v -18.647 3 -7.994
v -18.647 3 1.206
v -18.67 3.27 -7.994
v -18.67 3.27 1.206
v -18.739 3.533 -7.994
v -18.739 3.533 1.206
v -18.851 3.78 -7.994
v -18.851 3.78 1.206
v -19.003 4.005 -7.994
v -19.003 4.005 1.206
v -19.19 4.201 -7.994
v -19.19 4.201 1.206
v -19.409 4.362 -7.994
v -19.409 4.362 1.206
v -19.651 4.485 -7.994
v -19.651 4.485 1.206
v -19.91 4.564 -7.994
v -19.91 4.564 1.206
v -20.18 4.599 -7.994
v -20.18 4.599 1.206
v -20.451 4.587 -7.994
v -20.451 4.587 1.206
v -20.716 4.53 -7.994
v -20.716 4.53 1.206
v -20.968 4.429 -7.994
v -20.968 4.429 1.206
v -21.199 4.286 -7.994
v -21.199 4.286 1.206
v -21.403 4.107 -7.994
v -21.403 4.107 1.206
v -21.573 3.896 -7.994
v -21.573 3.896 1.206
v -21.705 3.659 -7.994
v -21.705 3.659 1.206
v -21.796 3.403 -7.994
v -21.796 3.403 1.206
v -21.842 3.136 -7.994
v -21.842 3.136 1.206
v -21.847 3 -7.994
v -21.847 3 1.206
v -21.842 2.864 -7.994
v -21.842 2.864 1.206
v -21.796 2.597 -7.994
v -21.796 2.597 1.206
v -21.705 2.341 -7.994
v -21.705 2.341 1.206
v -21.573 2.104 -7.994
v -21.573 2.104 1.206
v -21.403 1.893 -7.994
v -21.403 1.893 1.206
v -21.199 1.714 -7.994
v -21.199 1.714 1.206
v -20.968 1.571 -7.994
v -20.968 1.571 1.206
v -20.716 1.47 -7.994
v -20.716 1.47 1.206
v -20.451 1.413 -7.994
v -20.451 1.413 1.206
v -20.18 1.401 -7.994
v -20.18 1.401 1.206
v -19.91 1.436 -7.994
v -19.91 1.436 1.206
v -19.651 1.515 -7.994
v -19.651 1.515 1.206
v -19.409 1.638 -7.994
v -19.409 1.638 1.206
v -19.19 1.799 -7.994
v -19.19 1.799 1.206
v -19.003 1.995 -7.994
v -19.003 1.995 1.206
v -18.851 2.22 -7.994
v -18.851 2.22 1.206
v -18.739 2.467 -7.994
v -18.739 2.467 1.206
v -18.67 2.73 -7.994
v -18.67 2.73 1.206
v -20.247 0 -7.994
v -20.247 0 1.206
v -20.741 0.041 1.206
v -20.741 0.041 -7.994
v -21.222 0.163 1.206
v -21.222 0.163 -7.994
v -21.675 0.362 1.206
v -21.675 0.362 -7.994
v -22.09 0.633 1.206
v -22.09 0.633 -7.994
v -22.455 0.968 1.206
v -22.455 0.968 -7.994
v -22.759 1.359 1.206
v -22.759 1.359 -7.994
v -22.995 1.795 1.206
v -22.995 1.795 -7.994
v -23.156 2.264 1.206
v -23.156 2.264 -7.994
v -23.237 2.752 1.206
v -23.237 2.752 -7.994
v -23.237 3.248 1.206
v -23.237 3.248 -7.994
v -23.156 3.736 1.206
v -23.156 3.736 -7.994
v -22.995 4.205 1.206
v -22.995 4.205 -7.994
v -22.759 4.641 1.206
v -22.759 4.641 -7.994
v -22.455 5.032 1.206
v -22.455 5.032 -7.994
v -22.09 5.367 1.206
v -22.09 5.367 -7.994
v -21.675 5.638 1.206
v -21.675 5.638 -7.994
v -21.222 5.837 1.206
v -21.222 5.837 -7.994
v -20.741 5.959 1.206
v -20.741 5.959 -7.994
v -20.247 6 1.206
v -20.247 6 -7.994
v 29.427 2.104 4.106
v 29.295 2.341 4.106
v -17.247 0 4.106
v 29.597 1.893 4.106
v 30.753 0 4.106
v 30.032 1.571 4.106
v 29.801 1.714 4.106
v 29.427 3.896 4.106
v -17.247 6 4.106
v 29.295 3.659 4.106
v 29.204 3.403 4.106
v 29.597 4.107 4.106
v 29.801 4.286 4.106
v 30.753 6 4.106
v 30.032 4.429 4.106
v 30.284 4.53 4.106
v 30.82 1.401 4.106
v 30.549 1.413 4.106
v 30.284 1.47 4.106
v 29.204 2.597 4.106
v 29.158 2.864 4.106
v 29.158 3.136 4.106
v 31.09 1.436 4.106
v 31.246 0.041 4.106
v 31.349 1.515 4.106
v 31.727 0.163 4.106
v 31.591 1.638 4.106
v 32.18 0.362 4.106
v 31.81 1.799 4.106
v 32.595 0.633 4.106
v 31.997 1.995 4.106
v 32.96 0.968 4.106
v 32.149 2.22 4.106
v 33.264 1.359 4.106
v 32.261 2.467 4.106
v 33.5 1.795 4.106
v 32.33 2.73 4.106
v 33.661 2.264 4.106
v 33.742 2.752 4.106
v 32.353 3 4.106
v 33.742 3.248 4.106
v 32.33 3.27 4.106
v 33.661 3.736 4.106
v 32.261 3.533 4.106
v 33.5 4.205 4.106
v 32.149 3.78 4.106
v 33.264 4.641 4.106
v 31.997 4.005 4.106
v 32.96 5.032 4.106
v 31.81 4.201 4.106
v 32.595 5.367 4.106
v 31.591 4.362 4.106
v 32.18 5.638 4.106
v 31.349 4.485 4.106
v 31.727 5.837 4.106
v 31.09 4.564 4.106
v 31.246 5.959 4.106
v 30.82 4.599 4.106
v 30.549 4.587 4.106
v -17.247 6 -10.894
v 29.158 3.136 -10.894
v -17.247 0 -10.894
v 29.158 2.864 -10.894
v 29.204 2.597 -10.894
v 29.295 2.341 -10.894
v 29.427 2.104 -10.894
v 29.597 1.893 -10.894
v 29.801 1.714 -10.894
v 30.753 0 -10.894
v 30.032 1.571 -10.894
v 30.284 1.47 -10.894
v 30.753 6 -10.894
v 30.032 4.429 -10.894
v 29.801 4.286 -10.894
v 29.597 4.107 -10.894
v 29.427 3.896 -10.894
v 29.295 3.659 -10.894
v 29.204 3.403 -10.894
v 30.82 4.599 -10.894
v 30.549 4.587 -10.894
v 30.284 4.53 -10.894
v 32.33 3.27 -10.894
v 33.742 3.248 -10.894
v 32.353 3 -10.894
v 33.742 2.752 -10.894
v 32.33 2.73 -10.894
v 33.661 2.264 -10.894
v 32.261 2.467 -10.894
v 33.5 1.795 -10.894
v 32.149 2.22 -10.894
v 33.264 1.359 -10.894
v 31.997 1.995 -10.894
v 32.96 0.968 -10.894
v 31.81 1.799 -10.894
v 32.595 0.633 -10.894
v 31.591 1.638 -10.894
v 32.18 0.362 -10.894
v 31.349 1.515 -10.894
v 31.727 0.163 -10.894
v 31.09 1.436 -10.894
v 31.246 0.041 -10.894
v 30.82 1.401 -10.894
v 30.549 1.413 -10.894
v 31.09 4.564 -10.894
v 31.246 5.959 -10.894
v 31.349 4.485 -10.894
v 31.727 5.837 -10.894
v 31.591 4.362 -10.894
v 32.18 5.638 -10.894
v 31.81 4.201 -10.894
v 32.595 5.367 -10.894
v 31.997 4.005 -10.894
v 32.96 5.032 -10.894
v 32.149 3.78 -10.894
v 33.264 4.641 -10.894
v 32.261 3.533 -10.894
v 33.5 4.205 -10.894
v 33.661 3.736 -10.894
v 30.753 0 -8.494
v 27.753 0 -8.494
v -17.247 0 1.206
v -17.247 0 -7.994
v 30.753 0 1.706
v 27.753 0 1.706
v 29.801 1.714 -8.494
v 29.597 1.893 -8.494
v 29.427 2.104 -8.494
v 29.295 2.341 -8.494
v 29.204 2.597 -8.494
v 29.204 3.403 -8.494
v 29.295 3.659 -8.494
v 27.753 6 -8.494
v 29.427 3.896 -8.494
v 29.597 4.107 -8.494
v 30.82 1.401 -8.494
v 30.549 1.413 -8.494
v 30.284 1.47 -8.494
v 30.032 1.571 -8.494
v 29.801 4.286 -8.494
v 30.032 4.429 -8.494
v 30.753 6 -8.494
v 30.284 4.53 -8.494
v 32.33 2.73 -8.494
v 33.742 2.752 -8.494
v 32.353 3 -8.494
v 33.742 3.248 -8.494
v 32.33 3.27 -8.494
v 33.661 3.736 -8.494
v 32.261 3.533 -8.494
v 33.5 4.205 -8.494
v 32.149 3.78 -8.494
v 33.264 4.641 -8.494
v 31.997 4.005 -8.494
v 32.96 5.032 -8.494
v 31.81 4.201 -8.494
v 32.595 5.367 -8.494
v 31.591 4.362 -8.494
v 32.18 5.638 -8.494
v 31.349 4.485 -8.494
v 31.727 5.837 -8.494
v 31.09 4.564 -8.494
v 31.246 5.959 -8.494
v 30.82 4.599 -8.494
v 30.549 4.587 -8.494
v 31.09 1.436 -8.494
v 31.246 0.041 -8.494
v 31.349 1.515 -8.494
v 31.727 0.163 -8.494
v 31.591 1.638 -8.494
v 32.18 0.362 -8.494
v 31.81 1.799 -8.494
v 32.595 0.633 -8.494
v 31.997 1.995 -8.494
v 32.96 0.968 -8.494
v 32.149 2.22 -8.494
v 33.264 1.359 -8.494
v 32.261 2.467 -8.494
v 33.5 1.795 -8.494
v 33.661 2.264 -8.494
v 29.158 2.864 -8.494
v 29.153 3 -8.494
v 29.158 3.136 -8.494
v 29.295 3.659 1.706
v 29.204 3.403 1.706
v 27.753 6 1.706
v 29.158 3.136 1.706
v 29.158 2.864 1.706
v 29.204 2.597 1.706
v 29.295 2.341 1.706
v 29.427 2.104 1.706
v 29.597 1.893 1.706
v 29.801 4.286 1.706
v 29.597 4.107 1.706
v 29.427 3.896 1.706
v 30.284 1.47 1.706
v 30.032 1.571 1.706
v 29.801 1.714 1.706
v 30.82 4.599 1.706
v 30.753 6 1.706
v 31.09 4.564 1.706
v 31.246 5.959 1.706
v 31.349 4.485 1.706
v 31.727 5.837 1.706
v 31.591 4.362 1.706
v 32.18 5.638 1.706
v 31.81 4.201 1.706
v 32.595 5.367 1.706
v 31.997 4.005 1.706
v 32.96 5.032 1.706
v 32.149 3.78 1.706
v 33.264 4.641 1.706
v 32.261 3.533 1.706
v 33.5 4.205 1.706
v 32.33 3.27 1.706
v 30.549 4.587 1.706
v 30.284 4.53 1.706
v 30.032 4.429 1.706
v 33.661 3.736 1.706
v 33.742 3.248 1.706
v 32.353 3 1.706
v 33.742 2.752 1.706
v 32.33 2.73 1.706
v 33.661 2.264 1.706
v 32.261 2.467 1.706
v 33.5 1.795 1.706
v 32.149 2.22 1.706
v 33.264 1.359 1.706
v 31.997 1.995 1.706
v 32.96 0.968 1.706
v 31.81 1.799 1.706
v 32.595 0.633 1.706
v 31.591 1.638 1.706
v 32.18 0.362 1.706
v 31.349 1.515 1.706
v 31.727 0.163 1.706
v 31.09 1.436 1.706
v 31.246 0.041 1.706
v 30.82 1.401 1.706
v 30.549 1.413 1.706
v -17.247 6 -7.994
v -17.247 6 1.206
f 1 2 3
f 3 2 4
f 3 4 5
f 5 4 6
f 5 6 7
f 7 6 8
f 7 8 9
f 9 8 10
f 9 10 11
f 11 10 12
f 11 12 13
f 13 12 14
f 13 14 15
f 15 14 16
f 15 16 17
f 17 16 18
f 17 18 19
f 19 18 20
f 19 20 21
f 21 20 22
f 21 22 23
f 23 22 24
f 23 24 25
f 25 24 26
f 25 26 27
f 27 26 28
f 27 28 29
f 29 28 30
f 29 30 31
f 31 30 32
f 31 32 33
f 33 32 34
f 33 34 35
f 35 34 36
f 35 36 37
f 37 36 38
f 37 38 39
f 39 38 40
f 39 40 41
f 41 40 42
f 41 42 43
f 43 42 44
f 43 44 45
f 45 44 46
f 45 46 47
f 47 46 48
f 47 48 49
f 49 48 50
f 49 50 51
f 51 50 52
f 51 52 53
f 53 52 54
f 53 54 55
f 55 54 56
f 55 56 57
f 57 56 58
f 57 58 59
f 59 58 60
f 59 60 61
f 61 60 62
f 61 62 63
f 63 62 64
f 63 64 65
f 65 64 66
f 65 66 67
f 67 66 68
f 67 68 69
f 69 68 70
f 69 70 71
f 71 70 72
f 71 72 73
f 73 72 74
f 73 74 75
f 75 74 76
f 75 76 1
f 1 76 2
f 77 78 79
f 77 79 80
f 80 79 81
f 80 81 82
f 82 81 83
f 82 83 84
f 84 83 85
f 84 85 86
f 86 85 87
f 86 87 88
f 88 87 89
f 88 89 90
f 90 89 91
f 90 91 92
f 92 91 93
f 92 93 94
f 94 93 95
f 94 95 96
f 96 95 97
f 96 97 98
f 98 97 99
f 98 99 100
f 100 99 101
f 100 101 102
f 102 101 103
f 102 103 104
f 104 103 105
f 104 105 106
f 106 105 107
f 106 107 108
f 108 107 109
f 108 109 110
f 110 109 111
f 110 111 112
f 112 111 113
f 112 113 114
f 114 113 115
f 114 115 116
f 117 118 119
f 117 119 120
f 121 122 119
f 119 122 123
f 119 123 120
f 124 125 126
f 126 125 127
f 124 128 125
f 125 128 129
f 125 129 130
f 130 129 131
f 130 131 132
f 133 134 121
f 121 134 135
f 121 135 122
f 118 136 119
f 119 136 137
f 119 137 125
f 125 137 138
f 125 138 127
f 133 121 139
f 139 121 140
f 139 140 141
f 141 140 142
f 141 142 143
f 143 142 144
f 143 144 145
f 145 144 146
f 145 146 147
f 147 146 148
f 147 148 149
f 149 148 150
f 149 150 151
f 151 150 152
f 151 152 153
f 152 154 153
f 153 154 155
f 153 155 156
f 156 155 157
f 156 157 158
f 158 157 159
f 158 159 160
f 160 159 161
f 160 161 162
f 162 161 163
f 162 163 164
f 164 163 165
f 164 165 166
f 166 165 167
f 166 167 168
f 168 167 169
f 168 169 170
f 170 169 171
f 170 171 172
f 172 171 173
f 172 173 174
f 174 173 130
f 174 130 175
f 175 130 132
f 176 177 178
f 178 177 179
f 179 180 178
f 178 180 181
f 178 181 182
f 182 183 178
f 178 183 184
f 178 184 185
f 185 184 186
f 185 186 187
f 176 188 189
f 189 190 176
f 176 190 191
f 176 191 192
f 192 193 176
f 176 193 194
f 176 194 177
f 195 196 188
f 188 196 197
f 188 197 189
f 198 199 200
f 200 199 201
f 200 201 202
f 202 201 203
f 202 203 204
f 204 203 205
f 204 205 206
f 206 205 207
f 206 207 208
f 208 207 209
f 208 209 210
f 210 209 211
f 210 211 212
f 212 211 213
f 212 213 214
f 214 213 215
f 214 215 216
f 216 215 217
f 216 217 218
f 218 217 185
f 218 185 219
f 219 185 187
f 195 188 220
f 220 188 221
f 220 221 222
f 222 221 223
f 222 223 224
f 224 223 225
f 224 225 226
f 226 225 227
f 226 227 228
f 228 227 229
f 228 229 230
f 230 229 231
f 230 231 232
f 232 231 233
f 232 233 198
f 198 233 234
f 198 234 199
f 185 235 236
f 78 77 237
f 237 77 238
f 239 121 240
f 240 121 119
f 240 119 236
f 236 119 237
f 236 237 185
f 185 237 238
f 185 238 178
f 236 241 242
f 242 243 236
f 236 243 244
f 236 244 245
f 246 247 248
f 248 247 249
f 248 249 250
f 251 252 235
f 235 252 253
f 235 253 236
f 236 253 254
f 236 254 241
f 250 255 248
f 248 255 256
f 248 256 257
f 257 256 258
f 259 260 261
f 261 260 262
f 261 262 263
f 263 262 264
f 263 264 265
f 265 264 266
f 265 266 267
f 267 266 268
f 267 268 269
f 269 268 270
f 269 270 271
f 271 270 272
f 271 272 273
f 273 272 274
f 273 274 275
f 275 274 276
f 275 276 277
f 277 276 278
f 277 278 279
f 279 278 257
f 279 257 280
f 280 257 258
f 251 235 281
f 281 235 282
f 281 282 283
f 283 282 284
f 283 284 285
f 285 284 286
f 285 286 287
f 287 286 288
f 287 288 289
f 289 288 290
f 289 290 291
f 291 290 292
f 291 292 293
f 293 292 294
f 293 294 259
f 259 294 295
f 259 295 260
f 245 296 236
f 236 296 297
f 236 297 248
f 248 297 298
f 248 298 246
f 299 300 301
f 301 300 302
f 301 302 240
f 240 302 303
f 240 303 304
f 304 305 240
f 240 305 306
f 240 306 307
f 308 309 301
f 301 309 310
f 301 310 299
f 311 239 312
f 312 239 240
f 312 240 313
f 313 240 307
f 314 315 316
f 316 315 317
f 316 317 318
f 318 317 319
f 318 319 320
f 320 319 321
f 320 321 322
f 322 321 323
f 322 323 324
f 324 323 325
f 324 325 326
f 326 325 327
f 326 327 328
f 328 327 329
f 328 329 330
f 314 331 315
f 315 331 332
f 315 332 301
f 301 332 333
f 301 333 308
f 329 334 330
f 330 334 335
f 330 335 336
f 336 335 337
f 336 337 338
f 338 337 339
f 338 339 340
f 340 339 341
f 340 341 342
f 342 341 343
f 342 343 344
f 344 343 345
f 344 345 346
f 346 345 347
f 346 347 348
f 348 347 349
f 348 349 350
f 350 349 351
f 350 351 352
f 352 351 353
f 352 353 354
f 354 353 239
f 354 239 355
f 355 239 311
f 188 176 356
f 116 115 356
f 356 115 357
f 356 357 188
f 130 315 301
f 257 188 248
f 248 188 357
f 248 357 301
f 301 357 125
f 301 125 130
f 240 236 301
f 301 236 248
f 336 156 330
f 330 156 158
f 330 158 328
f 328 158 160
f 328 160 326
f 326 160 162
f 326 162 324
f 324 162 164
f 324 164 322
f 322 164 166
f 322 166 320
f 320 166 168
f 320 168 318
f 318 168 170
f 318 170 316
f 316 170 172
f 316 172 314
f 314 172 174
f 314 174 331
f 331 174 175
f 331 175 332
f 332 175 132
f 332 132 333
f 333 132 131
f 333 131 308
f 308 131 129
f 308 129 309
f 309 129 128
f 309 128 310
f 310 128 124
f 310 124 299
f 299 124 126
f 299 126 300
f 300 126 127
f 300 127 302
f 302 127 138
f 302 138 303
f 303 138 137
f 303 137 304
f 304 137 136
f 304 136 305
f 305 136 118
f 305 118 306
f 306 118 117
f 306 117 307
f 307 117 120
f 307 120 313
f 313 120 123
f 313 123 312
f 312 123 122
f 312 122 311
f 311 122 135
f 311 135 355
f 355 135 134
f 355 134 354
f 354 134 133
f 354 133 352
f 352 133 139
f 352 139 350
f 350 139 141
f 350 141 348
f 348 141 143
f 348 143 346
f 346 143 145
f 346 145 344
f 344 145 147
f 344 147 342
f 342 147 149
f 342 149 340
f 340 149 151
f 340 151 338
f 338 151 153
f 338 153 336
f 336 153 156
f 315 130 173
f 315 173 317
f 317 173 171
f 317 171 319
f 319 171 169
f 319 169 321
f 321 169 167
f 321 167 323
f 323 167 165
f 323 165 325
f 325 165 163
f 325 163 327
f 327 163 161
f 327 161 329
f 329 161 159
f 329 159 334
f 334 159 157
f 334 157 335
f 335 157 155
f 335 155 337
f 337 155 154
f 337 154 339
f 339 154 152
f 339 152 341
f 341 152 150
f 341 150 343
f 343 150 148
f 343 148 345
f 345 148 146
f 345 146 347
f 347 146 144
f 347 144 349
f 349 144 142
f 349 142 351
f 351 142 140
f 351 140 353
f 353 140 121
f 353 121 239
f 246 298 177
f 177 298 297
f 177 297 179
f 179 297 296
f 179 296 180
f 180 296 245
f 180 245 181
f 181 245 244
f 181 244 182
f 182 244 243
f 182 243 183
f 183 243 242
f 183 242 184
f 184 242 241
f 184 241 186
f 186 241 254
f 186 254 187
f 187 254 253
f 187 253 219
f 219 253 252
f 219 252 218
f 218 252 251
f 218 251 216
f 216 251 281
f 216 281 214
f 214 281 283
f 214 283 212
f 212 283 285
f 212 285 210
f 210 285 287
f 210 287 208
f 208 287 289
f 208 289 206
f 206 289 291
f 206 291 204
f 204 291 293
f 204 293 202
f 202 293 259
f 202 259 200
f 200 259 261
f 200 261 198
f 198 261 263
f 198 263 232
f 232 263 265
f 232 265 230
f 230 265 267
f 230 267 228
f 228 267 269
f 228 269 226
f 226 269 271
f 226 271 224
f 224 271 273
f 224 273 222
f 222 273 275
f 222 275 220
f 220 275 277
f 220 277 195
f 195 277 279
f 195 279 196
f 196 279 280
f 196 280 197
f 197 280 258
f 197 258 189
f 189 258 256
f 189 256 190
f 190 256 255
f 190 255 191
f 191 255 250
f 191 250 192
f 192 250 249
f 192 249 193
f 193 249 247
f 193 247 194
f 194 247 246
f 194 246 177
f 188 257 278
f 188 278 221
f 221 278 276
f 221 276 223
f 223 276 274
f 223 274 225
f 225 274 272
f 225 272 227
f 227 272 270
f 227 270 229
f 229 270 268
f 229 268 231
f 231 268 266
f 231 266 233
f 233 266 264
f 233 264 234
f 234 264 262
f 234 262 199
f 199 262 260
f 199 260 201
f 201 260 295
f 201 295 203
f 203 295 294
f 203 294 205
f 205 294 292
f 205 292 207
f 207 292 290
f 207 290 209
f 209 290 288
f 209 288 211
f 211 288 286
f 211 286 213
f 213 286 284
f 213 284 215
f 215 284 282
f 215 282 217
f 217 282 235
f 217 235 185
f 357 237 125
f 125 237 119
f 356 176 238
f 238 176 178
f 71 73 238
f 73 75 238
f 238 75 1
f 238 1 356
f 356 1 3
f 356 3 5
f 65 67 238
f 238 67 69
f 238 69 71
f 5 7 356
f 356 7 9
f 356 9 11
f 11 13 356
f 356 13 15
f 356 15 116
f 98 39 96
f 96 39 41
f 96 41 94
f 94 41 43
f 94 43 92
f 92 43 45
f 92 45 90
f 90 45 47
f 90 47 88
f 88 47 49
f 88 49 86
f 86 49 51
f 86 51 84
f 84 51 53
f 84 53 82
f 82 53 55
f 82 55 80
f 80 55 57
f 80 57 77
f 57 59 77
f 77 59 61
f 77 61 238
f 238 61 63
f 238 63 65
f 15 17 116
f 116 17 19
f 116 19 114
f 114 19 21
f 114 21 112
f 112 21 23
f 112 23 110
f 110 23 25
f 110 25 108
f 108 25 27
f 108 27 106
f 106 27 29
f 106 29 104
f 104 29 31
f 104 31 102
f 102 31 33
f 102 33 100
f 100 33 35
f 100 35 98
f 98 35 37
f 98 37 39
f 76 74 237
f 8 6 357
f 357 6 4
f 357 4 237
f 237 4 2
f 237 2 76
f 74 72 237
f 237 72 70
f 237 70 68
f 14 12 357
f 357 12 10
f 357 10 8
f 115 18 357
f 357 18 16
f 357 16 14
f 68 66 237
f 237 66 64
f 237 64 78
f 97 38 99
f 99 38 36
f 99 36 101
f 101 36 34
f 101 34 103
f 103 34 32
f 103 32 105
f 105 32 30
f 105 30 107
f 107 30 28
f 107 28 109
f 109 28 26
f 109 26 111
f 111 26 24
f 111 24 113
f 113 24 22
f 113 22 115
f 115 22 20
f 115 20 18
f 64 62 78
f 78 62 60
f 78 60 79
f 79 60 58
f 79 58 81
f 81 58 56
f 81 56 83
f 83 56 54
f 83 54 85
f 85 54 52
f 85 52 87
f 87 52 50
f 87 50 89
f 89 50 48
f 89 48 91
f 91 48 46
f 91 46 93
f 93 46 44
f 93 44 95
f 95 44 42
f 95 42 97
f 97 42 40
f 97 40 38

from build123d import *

# Parameters (mm, degrees)
SKETCH_1_W           = 57
SKETCH_1_H           = 15
EXTRUDE_5_DEPTH      = 6
SKETCH_13_W          = 6
SKETCH_13_H          = 10.2
CUT_EXTRUDE_8_DEPTH  = 6
SKETCH_14_R          = 1.6
CUT_EXTRUDE_9_DEPTH  = 17
SKETCH_15_W          = 6
SKETCH_15_H          = 2.4
CUT_EXTRUDE_10_DEPTH = 17
SKETCH_16_R          = 1.6
CUT_EXTRUDE_11_DEPTH = 17
SKETCH_17_W          = 6
SKETCH_17_H          = 6
CUT_EXTRUDE_12_DEPTH = 0.5
SKETCH_18_W          = 6
SKETCH_18_H          = 6
CUT_EXTRUDE_13_DEPTH = 0.5


with BuildPart() as part:
    # 草图1 → 凸台-拉伸5 (new body)
    with BuildSketch(Plane(origin=(0, 0, 0), x_dir=(1, 0, 0), z_dir=(0, 1, 0))):
        with Locations((5.252559727, 3.394197952)):
            Rectangle(SKETCH_1_W, SKETCH_1_H)
    extrude(amount=EXTRUDE_5_DEPTH)

    # 草图13 → 切除-拉伸8 (cut)
    with BuildSketch(Plane(origin=(0, 6, 0), x_dir=(1, 0, 0), z_dir=(0, 1, 0))):
        with Locations((30.752559727, 3.394197952)):
            Rectangle(SKETCH_13_W, SKETCH_13_H)
    extrude(amount=-CUT_EXTRUDE_8_DEPTH, mode=Mode.SUBTRACT)

    # 草图14 → 切除-拉伸9 (cut)
    with BuildSketch(Plane.XY.offset(4.105802048)):
        with Locations((30.752559727, 3)):
            Circle(SKETCH_14_R)
        with BuildLine():
            Line((33.752559727, 6), (30.752559727, 6))
            ThreePointArc((30.752559727, 6), (32.873880071, 5.121320344), (33.752559727, 3))
            Line((33.752559727, 3), (33.752559727, 6))
        make_face()
        with BuildLine():
            Line((33.752559727, 0), (33.752559727, 3))
            ThreePointArc((33.752559727, 3), (32.873880071, 0.878679656), (30.752559727, 0))
            Line((30.752559727, 0), (33.752559727, 0))
        make_face()
    extrude(amount=-CUT_EXTRUDE_9_DEPTH, mode=Mode.SUBTRACT)

    # 草图15 → 切除-拉伸10 (cut)
    with BuildSketch(Plane(origin=(0, 6, 0), x_dir=(1, 0, 0), z_dir=(0, 1, 0))):
        with Locations((-20.247440273, 9.694197952)):
            Rectangle(SKETCH_15_W, SKETCH_15_H)
        with Locations((-20.247440273, -2.905802048)):
            Rectangle(SKETCH_15_W, SKETCH_15_H)
    extrude(amount=-CUT_EXTRUDE_10_DEPTH, mode=Mode.SUBTRACT)

    # 草图16 → 切除-拉伸11 (cut)
    with BuildSketch(Plane.XY.offset(1.705802048)):
        with Locations((-20.247440273, 3)):
            Circle(SKETCH_16_R)
        with BuildLine():
            ThreePointArc((-23.247440273, 3), (-22.368760617, 5.121320344), (-20.247440273, 6))
            Line((-20.247440273, 6), (-23.247440273, 6))
            Line((-23.247440273, 6), (-23.247440273, 3))
        make_face()
        with BuildLine():
            ThreePointArc((-20.247440273, 0), (-22.368760617, 0.878679656), (-23.247440273, 3))
            Line((-23.247440273, 3), (-23.247440273, 0))
            Line((-23.247440273, 0), (-20.247440273, 0))
        make_face()
    extrude(amount=-CUT_EXTRUDE_11_DEPTH, mode=Mode.SUBTRACT)

    # 草图17 → 切除-拉伸12 (cut)
    with BuildSketch(Plane(origin=(0, 0, -8.494197952), x_dir=(-1, 0, 0), z_dir=(0, 0, -1))):
        with Locations((20.247440273, 3)):
            Rectangle(SKETCH_17_W, SKETCH_17_H)
    extrude(amount=-CUT_EXTRUDE_12_DEPTH, mode=Mode.SUBTRACT)

    # 草图18 → 切除-拉伸13 (cut)
    with BuildSketch(Plane.XY.offset(1.705802048)):
        with Locations((-20.247440273, 3)):
            Rectangle(SKETCH_18_W, SKETCH_18_H)
    extrude(amount=-CUT_EXTRUDE_13_DEPTH, mode=Mode.SUBTRACT)


solid = part.part
